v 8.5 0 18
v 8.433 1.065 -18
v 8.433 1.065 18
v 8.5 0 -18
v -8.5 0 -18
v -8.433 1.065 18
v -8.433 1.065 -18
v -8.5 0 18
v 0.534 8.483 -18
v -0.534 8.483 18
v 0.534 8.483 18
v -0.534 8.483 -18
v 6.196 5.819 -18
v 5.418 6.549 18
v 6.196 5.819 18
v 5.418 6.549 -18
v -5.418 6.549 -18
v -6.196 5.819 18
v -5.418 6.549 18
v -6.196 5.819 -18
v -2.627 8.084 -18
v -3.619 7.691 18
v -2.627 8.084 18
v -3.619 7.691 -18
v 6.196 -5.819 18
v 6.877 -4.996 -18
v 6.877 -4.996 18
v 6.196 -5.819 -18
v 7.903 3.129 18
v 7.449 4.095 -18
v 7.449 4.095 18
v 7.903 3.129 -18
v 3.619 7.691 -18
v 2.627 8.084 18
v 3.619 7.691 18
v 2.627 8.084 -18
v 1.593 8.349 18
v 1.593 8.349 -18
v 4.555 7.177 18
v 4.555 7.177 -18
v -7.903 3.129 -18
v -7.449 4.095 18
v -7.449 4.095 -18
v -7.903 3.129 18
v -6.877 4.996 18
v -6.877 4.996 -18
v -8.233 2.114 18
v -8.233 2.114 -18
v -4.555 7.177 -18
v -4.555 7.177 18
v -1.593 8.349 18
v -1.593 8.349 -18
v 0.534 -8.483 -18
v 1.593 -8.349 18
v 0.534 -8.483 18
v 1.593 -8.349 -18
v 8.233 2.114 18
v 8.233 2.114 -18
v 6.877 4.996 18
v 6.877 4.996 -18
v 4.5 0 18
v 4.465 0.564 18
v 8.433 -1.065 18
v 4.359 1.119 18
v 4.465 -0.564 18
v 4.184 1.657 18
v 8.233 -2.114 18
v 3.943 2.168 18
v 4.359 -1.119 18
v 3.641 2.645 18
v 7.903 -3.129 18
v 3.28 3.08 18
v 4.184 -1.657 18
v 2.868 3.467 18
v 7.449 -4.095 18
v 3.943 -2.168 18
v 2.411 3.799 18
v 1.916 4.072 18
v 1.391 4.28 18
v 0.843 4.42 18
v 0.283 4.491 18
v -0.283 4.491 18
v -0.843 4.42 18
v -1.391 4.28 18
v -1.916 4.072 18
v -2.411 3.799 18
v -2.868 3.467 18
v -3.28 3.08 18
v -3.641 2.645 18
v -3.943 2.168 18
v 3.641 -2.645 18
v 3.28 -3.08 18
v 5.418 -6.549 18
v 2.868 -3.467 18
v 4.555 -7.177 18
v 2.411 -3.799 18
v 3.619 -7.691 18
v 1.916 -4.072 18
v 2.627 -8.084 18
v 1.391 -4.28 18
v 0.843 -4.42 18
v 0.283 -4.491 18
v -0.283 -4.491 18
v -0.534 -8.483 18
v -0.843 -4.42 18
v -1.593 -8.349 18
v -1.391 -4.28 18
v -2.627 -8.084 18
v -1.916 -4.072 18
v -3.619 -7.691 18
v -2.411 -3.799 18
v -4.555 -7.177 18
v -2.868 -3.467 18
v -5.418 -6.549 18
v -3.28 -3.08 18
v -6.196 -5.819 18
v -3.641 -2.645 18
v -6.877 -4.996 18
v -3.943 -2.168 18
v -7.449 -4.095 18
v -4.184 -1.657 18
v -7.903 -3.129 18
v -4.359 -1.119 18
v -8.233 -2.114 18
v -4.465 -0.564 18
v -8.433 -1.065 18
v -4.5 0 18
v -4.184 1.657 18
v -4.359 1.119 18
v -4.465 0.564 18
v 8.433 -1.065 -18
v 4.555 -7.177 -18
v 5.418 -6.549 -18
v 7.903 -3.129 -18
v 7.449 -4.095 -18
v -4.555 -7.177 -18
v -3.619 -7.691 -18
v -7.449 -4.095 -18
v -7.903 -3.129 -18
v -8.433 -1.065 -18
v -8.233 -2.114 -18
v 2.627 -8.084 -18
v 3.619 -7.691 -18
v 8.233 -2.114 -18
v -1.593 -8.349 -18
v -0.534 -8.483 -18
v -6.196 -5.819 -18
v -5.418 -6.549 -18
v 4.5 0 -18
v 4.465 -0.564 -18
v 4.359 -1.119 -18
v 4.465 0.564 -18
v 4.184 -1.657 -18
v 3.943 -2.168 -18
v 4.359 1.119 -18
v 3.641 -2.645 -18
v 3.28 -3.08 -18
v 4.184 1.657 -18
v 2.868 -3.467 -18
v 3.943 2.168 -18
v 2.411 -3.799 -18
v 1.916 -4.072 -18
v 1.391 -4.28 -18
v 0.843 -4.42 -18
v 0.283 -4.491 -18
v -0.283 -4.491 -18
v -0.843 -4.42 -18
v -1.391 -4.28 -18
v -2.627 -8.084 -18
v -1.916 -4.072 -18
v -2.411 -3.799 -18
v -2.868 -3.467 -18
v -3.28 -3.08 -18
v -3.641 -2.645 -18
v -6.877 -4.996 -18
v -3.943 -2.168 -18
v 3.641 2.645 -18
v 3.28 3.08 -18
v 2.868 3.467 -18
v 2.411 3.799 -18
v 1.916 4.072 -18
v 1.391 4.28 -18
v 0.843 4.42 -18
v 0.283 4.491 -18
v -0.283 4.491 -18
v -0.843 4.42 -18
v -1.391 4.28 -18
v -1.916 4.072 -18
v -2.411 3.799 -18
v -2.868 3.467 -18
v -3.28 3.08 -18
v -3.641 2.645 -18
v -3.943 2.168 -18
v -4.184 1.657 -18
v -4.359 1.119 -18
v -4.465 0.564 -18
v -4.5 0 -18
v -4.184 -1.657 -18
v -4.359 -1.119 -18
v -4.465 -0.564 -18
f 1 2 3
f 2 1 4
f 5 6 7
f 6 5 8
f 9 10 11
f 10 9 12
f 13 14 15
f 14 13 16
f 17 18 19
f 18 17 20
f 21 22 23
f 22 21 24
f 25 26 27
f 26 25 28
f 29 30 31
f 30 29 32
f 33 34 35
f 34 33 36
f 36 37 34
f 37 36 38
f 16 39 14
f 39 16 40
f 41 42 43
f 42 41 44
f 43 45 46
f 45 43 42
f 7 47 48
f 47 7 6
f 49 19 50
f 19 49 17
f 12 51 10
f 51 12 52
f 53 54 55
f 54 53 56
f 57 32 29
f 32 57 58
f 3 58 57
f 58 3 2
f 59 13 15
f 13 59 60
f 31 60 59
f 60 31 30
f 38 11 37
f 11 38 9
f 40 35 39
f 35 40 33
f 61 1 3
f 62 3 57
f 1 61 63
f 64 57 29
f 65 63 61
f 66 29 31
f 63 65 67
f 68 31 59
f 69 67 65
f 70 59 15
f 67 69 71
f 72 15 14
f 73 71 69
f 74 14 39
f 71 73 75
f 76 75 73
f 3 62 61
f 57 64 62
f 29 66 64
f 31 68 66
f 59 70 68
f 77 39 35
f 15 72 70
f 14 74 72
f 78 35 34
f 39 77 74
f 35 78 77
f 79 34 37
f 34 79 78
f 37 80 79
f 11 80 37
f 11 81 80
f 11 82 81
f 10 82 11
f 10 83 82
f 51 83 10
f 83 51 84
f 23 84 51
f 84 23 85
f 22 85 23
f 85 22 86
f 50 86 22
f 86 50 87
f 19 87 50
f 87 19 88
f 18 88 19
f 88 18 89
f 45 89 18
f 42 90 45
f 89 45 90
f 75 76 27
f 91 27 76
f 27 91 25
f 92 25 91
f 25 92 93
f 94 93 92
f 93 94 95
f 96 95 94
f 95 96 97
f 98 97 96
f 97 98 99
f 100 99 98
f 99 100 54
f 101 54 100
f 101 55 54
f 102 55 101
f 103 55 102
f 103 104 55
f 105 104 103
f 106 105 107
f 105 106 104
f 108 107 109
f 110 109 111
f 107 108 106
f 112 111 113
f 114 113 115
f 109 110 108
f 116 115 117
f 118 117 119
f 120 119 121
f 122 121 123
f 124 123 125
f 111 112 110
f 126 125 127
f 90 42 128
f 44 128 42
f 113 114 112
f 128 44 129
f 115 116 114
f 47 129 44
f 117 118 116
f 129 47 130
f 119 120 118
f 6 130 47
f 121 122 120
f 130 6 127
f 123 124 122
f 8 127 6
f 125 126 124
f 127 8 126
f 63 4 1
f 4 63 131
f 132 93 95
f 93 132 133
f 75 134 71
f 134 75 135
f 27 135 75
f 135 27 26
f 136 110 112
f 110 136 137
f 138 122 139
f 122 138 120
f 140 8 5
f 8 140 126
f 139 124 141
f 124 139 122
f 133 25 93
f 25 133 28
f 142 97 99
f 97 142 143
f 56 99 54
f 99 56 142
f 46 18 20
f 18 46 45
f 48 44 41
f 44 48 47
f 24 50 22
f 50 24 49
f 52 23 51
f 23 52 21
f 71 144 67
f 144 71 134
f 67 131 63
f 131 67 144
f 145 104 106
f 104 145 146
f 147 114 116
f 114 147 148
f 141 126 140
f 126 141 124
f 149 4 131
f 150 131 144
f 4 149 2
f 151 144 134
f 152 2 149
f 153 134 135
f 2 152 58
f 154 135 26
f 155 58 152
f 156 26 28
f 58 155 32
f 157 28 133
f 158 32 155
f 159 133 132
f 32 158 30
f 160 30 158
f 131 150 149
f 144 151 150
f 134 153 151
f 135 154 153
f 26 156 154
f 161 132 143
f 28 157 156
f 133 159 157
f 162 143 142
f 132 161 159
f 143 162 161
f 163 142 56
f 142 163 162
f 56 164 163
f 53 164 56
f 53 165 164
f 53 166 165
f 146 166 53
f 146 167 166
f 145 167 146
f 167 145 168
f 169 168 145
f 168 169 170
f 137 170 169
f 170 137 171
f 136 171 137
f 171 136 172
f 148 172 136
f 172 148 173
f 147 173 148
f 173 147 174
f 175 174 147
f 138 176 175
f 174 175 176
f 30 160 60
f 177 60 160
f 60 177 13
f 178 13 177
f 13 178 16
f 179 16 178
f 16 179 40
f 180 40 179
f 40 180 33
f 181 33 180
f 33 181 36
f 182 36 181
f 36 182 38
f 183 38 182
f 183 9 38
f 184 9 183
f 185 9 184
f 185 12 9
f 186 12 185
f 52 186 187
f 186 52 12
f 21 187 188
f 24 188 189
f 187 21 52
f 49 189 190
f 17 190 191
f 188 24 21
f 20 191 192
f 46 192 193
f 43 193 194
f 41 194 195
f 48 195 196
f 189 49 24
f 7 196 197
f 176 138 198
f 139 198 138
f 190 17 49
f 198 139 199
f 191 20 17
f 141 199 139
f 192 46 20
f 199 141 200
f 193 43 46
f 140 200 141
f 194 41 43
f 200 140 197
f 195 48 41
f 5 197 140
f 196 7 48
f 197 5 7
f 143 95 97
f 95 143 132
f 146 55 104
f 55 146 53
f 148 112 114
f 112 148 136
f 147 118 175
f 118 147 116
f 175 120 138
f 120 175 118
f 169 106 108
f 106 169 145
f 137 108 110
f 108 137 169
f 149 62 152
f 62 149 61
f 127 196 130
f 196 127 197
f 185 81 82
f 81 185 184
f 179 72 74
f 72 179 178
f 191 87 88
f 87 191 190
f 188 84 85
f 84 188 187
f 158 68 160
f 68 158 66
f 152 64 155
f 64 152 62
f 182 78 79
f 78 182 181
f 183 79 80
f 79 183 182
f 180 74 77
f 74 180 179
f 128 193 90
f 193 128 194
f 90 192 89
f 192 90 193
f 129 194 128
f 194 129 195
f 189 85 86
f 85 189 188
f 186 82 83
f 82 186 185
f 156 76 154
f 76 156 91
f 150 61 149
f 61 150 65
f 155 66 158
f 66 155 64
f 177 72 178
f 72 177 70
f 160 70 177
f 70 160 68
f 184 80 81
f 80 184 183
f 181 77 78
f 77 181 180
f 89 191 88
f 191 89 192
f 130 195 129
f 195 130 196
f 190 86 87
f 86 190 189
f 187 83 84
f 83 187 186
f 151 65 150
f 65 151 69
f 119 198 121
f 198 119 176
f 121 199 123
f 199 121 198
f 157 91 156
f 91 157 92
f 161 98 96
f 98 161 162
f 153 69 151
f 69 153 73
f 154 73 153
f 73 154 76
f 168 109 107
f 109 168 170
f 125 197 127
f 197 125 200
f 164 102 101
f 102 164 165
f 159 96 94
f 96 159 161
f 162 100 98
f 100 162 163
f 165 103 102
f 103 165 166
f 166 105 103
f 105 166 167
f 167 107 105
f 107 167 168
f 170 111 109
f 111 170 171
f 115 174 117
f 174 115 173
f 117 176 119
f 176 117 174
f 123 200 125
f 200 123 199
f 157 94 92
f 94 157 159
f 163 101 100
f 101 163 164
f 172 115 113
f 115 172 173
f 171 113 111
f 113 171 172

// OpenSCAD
$fn = 50;


difference() {
	union() {
		translate(v = [0, 0, -18.0000000000]) {
			cylinder(h = 36, r = 8.5000000000);
		}
	}
	union() {
		translate(v = [0, 0, -100.0000000000]) {
			cylinder(h = 200, r = 4.5000000000);
		}
	}
}
